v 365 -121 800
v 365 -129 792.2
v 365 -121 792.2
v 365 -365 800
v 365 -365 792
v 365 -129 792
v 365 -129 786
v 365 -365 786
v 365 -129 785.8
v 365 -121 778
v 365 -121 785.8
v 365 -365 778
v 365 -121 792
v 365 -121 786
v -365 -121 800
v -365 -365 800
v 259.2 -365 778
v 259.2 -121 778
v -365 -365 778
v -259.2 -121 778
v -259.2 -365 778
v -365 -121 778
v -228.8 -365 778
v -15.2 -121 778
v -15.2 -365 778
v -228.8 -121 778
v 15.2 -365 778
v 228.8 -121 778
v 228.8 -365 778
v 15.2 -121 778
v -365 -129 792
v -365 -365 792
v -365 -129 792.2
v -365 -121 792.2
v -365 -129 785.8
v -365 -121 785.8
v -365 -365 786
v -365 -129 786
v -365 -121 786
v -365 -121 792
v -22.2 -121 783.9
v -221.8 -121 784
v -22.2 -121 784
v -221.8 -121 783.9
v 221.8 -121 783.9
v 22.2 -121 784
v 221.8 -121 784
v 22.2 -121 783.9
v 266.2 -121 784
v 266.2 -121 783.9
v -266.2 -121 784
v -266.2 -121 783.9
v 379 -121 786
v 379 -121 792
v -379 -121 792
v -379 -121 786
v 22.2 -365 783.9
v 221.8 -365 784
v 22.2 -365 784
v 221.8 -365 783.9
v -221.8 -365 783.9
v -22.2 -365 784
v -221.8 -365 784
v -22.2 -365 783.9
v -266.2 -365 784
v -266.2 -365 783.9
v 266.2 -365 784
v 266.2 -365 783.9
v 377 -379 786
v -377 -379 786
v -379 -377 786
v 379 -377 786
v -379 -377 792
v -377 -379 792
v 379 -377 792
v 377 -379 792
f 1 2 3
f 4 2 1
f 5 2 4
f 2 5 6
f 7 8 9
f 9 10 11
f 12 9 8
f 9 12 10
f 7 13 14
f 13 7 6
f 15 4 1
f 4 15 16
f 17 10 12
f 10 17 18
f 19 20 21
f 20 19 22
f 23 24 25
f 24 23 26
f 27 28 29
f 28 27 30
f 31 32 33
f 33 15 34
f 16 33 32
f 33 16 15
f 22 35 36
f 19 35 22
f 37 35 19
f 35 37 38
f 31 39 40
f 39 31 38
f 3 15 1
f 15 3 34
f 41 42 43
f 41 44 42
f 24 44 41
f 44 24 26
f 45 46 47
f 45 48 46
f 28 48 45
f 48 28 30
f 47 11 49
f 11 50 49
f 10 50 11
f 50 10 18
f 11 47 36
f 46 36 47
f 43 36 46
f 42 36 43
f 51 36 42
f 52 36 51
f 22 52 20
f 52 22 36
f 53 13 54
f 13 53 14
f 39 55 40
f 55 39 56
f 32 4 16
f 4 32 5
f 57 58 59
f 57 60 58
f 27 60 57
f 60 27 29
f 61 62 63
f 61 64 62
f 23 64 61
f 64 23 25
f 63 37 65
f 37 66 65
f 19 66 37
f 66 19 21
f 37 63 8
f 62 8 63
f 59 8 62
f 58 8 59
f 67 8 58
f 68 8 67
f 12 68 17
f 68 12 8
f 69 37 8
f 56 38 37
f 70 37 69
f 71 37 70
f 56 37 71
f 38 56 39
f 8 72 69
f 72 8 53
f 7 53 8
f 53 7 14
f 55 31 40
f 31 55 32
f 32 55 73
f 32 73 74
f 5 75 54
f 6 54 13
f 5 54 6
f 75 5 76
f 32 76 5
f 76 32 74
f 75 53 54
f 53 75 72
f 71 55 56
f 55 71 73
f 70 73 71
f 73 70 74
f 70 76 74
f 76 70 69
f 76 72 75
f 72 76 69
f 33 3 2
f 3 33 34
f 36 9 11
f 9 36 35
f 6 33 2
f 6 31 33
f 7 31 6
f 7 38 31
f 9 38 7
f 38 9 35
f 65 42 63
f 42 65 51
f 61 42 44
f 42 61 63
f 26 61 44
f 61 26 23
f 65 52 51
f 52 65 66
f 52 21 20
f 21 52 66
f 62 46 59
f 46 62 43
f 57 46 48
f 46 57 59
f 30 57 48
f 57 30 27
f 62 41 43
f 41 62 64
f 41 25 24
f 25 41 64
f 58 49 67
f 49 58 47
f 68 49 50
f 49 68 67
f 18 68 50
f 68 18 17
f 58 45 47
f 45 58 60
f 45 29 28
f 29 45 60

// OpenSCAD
// file: parts.scad
$fn=40;

// ---- 桌腿 ----

module leg(){
  difference(){
    union(){
      translate([390.000,390.000,0.000]) cube([60.000,60.000,750.000]);
      translate([400.000,400.000,750.000]) cube([40.000,40.000,20.000]);
    }
    // 牙板透榫槽（沿 +x，+y 侧牙板 A 端穿入）
    translate([389.000,426.800,699.800]) cube([62.000,14.400,40.400]);
    // 牙板闷榫槽（沿 +y，+x 侧牙板 B 端）
    translate([426.800,389.000,699.800]) cube([14.400,23.200,40.400]);
  }
}

// ---- 边框 ----

module rail(){
  difference(){
    union(){
      translate([0,0,750]) linear_extrude(height=50) polygon(points=[[-370,370],[370,370],[450.0,450.0],[-450.0,450.0]]);
      translate([420.607,399.393,779.0]) rotate([0,0,-45]) cube([34,40,10],center=true);
    }
    // 面板槽：全长开通至 45° 端面（角部两框的槽合起来成 L 形）
    translate([-450.000,370.000,785.800]) cube([900.000,14.000,6.400]);
    // 腿顶榫卯（两端各半，合起来 40x40x20）
    translate([399.800,399.800,750.000]) cube([40.400,40.400,20.400]);
    translate([-440.200,399.800,750.000]) cube([40.400,40.400,20.400]);
    // 格角暗榫卯
    translate([-398.545,421.455,779.0]) rotate([0,0,45]) cube([34.4,40.4,10.4],center=true);
    // 竹销孔：+x 端穿暗榫，-x 端穿本体
    translate([418,384,750]) cylinder(h=34,r=4.0,$fn=40);
    translate([-384,418,750]) cylinder(h=34,r=4.0,$fn=40);
  }
}

// ---- 牙板 ----

module apron(){
  difference(){
    union(){
      translate([-390.000,424.000,680.000]) cube([780.000,20.000,70.000]);
      // A 端：透榫（390..460）
      translate([390.000,427.000,700.000]) cube([70.000,14.000,40.000]);
      // B 端：闷榫（-412..-390）
      translate([-412.000,427.000,700.000]) cube([22.000,14.000,40.000]);
    }
    hull(){ translate([375.000,423.500,680.000]) cube([15.000,21.000,0.200]); translate([389.800,423.500,680.000]) cube([0.200,21.000,15.000]); }
    hull(){ translate([-390.000,423.500,680.000]) cube([15.000,21.000,0.200]); translate([-390.000,423.500,680.000]) cube([0.200,21.000,15.000]); }
    // 透榫楔槽（横槽，撑开榫头上下两片）
    translate([428.000,426.900,718.400]) cube([32.200,14.200,3.200]);
  }
}

// ---- 面板-边板 ----

module panel_outer(){
  difference(){
    union(){
      translate([-365.000,-365.000,778.000]) cube([730.000,244.000,22.000]);
      translate([0,0,786]) linear_extrude(height=6) polygon(points=[[-379,-121],[-379,-377],[-377,-379],[377,-379],[379,-377],[379,-121],[365,-121],[365,-365],[-365,-365],[-365,-121]]);
    }
    // 内侧龙凤榫槽（向板内 8 深：y -129..-121）
    translate([-365.000,-129.000,785.800]) cube([730.000,8.000,6.400]);
    // 穿带燕尾槽
    hull(){ translate([-259.200,-365.000,778.000]) cube([30.400,244.000,0.100]); translate([-266.200,-365.000,783.900]) cube([44.400,244.000,0.100]); }
    hull(){ translate([-15.200,-365.000,778.000]) cube([30.400,244.000,0.100]); translate([-22.200,-365.000,783.900]) cube([44.400,244.000,0.100]); }
    hull(){ translate([228.800,-365.000,778.000]) cube([30.400,244.000,0.100]); translate([221.800,-365.000,783.900]) cube([44.400,244.000,0.100]); }
  }
}

// ---- 面板-中板 ----

module panel_middle(){
  difference(){
    union(){
      translate([-365.000,-121.000,778.000]) cube([730.000,242.000,22.000]);
      translate([365.000,-121.000,786.000]) cube([14.000,242.000,6.000]);
      translate([-379.000,-121.000,786.000]) cube([14.000,242.000,6.000]);
    }
    // 两侧龙凤榫槽（各向板内 8 深）
    translate([-365.000,-121.000,785.800]) cube([730.000,8.000,6.400]);
    translate([-365.000,113.000,785.800]) cube([730.000,8.000,6.400]);
    hull(){ translate([-259.200,-121.000,778.000]) cube([30.400,242.000,0.100]); translate([-266.200,-121.000,783.900]) cube([44.400,242.000,0.100]); }
    hull(){ translate([-15.200,-121.000,778.000]) cube([30.400,242.000,0.100]); translate([-22.200,-121.000,783.900]) cube([44.400,242.000,0.100]); }
    hull(){ translate([228.800,-121.000,778.000]) cube([30.400,242.000,0.100]); translate([221.800,-121.000,783.900]) cube([44.400,242.000,0.100]); }
  }
}

// ---- 穿带 ----

module cleat(){
  union(){
    translate([-20.000,-363.000,752.000]) cube([40.000,726.000,26.000]);
    hull(){
      translate([-15.000,-363.000,777.900]) cube([30.000,726.000,0.050]);
      translate([-22.000,-363.000,783.800]) cube([44.000,726.000,0.100]);
    }
  }
}

// ---- 穿簧 ----
module spline(){ translate([-360.000,-7.800,786.100]) cube([720.000,15.600,5.800]); }
// ---- 木楔 ----
module wedge(){ hull(){ translate([435.000,427.400,719.400]) cube([1.000,13.200,1.200]); translate([467.000,427.400,718.500]) cube([1.000,13.200,3.000]); } }
// ---- 竹销 ----
module pin(){ translate([0,0,750]) cylinder(h=34,r=4.0,$fn=40); }
// main file
// 面板-边板（0° 基准件，位于整机坐标系中）
include <parts.scad>
panel_outer();
